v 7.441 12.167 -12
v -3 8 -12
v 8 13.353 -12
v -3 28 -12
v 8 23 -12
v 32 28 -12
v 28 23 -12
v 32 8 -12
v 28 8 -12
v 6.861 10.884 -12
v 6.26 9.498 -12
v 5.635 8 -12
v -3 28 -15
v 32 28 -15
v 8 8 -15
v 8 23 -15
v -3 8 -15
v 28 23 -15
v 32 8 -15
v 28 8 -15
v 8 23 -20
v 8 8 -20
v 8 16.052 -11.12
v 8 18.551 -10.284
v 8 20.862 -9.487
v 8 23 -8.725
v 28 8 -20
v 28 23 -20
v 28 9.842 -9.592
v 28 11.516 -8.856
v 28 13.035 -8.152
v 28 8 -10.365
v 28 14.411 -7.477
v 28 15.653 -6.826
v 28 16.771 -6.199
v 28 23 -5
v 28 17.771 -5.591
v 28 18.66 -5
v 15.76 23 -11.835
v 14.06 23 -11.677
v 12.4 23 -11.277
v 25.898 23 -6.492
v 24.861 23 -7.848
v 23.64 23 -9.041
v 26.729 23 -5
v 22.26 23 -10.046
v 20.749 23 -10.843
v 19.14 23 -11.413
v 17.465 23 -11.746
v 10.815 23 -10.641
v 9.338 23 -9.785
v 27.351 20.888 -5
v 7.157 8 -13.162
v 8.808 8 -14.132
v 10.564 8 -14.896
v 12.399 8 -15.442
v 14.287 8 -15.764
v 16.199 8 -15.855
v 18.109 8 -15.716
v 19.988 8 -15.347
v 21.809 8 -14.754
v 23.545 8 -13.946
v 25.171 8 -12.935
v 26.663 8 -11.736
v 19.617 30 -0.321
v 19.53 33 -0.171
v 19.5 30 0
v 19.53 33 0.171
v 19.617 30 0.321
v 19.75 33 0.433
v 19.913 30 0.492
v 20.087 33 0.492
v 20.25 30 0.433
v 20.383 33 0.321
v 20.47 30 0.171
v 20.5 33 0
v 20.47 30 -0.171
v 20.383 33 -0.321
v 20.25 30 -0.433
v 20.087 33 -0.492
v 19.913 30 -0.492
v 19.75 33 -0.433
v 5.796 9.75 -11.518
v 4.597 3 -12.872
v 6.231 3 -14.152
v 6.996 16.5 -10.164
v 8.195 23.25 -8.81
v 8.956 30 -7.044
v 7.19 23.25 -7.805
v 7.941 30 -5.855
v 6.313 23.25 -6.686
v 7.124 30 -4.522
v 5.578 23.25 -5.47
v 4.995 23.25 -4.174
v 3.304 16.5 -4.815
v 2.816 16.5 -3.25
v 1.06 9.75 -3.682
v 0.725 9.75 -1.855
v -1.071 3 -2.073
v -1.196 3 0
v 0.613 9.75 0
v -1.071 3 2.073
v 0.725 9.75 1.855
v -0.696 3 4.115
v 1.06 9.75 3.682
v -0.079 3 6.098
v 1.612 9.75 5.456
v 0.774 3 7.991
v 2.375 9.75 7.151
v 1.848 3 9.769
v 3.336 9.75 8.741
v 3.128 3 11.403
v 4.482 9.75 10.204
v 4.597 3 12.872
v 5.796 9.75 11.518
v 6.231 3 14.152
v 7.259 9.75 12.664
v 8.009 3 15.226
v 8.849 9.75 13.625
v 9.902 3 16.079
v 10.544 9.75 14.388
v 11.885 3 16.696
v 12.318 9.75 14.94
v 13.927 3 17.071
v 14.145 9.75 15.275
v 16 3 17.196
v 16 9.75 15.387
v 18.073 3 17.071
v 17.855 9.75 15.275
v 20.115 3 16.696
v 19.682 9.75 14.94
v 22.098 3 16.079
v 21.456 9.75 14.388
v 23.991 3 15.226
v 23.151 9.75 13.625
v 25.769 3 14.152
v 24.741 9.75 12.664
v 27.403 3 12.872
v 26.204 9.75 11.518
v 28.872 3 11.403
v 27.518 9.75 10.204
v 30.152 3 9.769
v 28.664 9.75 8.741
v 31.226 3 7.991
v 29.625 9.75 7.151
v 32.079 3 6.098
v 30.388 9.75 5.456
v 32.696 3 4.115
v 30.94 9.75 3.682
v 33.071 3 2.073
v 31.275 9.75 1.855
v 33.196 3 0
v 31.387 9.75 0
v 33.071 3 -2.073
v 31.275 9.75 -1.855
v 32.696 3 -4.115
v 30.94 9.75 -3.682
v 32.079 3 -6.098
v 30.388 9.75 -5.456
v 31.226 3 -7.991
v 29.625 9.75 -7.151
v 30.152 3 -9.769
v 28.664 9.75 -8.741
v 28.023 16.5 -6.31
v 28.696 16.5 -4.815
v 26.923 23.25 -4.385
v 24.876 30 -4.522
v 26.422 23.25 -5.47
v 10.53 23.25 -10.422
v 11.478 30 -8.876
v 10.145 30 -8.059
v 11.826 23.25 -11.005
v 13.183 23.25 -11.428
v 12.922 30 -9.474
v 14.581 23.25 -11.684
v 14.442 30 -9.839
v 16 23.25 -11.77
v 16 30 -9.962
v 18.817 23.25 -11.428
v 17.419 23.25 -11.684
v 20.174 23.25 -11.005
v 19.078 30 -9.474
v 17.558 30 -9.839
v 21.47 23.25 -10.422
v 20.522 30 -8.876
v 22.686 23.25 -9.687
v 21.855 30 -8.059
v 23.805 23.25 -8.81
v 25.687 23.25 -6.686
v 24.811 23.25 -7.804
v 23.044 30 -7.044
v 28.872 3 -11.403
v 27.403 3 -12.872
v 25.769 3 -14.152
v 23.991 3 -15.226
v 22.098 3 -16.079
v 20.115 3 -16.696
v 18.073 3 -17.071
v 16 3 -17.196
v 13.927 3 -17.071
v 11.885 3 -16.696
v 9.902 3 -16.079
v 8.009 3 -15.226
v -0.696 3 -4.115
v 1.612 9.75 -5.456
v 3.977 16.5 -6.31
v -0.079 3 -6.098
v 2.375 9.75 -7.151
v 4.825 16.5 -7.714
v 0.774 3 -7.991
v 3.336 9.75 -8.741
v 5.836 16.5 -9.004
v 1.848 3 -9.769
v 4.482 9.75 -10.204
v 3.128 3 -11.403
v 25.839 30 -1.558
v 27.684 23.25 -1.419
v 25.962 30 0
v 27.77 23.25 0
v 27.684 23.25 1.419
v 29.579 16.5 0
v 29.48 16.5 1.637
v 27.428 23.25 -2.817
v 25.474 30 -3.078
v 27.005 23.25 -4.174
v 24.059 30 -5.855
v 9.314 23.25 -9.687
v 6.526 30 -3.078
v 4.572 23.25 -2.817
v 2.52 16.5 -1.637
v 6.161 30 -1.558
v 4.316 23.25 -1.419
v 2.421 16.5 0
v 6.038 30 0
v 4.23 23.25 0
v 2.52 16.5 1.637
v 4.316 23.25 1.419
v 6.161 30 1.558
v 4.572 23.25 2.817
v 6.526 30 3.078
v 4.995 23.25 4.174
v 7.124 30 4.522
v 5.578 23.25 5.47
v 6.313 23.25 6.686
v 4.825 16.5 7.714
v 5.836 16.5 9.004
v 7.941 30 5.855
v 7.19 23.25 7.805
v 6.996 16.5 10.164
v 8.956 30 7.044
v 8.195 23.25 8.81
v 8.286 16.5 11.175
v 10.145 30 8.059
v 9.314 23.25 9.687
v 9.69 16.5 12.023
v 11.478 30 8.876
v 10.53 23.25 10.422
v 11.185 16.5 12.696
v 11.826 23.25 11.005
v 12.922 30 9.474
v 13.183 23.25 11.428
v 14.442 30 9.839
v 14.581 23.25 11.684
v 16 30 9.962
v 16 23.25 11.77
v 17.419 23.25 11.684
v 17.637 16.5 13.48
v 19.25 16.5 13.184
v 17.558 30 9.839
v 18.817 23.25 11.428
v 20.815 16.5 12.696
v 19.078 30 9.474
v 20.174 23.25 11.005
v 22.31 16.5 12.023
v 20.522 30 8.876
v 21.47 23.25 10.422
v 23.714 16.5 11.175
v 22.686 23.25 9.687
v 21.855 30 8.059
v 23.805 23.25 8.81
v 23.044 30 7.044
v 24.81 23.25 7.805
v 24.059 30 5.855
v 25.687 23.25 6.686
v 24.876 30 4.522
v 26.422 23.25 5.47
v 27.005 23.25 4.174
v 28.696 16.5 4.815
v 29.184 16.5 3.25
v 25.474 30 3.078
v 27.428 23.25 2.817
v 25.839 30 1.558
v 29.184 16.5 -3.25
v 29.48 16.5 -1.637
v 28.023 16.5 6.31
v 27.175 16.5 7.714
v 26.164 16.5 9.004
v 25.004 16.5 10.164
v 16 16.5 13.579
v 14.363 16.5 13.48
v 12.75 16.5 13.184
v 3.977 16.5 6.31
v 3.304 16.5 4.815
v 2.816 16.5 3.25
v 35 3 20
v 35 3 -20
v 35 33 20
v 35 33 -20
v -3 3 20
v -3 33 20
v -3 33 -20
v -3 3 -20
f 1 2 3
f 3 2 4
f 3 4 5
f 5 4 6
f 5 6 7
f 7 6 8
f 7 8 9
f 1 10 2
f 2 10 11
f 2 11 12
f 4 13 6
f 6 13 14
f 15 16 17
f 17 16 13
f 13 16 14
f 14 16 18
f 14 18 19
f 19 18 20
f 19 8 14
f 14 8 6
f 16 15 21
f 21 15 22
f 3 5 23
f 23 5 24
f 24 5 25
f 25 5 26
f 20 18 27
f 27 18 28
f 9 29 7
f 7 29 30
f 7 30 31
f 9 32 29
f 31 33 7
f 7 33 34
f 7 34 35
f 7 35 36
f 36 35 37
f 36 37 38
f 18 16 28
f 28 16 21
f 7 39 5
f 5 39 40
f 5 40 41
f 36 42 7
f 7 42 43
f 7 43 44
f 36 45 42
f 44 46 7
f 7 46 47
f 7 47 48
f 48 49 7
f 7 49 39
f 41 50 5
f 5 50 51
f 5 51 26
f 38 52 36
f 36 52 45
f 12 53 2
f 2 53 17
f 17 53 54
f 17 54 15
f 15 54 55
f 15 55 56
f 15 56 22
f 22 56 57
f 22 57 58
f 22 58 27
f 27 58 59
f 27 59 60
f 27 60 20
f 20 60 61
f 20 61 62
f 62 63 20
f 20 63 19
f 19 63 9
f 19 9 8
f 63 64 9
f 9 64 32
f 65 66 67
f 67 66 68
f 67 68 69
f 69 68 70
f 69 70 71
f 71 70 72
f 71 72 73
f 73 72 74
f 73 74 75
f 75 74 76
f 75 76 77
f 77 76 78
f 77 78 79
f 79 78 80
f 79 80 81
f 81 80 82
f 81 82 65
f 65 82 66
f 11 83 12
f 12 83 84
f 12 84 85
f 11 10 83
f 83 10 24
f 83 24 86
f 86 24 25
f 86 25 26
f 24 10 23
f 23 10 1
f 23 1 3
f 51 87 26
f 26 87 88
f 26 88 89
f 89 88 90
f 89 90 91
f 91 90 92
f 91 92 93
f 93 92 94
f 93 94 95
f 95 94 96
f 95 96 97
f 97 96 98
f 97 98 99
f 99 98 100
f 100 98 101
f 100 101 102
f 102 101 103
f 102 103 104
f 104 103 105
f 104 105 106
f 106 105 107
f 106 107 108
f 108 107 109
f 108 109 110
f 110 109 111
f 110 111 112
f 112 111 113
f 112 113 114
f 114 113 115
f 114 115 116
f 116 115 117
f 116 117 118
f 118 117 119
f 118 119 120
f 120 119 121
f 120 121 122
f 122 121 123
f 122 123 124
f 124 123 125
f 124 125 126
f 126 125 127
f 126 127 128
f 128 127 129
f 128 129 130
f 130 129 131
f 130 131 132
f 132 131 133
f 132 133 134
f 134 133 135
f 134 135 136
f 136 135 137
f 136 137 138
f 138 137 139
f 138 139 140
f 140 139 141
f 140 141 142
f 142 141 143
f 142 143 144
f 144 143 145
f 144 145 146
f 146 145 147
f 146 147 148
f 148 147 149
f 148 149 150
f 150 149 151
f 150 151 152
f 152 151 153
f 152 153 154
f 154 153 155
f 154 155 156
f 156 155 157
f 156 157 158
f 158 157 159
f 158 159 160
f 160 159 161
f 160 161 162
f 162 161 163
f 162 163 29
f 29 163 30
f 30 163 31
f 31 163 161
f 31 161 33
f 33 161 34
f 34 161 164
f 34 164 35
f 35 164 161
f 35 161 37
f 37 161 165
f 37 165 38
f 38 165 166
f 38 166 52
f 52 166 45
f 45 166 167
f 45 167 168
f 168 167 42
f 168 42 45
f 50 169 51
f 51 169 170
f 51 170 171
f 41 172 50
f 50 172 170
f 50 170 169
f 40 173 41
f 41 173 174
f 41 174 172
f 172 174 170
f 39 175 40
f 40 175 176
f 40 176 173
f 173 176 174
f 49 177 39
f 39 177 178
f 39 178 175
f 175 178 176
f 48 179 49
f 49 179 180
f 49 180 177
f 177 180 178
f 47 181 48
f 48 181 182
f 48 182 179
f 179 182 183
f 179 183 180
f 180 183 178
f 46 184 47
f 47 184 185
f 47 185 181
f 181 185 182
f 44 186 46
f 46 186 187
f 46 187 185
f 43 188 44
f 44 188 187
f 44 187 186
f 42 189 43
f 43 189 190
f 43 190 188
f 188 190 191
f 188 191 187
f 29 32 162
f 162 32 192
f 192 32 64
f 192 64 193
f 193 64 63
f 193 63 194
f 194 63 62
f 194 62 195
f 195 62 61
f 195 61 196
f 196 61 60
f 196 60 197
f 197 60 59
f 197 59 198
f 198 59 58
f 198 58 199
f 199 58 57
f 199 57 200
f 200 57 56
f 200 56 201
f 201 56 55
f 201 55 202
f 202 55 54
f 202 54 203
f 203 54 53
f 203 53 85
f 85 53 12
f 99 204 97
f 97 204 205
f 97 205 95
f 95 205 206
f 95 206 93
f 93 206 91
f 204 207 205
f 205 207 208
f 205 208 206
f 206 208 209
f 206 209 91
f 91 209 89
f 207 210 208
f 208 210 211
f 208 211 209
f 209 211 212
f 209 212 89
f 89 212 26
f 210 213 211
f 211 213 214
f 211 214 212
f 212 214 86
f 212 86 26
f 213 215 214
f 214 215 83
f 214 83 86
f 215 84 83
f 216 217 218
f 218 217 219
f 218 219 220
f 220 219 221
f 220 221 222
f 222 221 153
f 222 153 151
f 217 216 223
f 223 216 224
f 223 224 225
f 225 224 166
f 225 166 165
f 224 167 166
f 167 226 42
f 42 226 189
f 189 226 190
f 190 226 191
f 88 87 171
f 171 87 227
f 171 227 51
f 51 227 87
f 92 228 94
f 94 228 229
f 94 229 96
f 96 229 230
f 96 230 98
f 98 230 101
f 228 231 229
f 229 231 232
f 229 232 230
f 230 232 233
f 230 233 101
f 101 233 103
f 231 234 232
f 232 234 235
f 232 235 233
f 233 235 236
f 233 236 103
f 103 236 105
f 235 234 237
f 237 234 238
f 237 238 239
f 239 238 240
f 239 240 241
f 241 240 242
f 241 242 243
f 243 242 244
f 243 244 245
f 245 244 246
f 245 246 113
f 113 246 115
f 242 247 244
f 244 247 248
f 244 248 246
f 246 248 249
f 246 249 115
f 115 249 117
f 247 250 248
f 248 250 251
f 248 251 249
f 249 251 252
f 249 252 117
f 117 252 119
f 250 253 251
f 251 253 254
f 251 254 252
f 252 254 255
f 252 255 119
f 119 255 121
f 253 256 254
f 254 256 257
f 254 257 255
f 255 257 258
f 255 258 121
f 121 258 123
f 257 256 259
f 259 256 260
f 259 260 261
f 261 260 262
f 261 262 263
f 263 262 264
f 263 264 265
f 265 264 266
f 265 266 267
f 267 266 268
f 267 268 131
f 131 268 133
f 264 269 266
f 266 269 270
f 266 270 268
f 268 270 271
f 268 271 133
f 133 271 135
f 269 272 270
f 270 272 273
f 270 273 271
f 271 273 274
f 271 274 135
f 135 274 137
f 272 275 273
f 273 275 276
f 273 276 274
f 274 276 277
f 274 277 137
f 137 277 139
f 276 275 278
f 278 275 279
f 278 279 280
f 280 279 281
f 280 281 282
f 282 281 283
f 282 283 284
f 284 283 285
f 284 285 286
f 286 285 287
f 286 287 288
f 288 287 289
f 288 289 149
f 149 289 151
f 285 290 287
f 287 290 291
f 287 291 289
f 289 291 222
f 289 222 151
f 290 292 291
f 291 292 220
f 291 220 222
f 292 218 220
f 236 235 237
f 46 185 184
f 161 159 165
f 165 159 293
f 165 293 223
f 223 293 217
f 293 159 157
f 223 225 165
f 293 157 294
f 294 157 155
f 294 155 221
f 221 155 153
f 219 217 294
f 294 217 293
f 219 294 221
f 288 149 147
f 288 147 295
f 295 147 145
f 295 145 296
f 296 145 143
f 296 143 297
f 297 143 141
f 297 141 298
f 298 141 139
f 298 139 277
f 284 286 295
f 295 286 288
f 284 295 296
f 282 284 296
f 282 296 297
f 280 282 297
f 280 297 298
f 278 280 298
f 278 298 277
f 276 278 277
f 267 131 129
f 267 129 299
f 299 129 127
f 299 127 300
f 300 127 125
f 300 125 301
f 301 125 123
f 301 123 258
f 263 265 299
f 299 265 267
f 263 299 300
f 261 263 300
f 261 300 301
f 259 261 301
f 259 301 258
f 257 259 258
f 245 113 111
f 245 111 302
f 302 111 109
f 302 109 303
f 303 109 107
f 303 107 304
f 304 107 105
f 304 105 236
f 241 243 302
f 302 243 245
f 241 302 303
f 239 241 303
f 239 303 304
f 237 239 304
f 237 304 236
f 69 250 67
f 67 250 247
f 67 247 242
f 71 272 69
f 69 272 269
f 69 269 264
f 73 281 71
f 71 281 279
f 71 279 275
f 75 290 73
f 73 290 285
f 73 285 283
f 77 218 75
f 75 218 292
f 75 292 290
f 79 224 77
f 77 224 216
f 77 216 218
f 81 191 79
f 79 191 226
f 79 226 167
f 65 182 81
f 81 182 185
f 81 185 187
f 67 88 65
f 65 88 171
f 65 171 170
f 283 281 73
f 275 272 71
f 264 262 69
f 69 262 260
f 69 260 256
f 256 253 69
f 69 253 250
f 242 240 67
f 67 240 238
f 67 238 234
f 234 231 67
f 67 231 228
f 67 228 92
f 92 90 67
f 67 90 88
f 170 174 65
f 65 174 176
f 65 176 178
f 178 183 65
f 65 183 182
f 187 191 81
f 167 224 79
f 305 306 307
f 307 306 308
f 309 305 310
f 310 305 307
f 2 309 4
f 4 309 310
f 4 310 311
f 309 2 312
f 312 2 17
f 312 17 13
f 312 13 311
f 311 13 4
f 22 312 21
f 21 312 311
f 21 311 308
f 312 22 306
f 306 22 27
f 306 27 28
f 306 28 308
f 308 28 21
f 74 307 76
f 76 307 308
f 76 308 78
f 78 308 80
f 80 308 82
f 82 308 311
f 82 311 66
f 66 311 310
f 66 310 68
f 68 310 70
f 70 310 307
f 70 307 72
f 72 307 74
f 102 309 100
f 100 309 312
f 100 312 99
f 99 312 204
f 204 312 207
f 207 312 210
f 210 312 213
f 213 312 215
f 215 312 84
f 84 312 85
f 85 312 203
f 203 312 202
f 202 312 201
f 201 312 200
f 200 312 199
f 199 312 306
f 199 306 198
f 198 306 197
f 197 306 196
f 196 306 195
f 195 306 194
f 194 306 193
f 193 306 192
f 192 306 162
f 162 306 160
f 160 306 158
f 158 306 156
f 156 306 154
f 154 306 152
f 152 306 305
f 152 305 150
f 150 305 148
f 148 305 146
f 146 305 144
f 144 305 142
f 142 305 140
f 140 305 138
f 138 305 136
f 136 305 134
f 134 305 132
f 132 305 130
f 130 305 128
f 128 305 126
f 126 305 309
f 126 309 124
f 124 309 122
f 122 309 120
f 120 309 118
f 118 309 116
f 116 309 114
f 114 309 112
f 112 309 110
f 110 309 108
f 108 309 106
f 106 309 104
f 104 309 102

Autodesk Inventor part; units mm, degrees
ref_plane "YZ Plane" through (0, 0, 0) normal (1, 0, 0) x (0, 1, 0)
ref_plane "XZ Plane" through (0, 0, 0) normal (0, 1, 0) x (-1, 0, 0)
ref_plane "XY Plane" through (0, 0, 0) normal (0, 0, 1) x (1, 0, 0)
ref_plane "Work Plane13" through (0, 3, 0) normal (0, 1, 0) x (1, 0, 0)
sketch "Sketch45" plane through (0, 3, 0) normal (0, 1, 0) x (1, 0, 0)
  line L0 (35, -20) -> (-3, -20)
  line L1 (-3, -20) -> (-3, 20)
  line L2 (-3, 20) -> (35, 20)
  line L3 (35, 20) -> (35, -20)
  point P0 (0, 0)
  dimension "d142" = 38
  dimension "d143" = 40
extrude "Extrusion34" add sketch "Sketch45" along normal blind 30
sketch "Sketch46" plane through (0, 33, 0) normal (0, 1, 0) x (1, 0, 0)
  point P0 (0, 0)
ref_plane "Work Plane11" through (0, 0, 0) normal (0, -1, 0) x (1, 0, 0)
sketch "Sketch47" plane through (0, 0, 0) normal (0, -1, 0) x (1, 0, 0)
  circle A0 centre (16, 0) radius 18
  point P0 (0, 0)
  dimension "d146" = 36
extrude "Extrusion35" cut sketch "Sketch47" against normal blind 30 draft -15
sketch "Sketch48" plane through (0, 33, 0) normal (0, 1, 0) x (1, 0, 0)
  point P0 (0, 0)
sketch "Sketch49" plane through (0, 33, 0) normal (0, 1, 0) x (1, 0, 0)
  circle A0 centre (20, 0) radius 0.5
  point P0 (0, 0)
  dimension "d149" = 1
extrude "Extrusion36" cut sketch "Sketch49" against normal through all
ref_plane "Work Plane7" through (35, 3, -20) normal (0, 0, -1) x (-1, 0, 0)
sketch "Sketch58" plane through (35, 3, -20) normal (0, 0, -1) x (-1, 0, 0)
  line L0 (7, 20) -> (27, 20)
  line L1 (27, 20) -> (27, 5)
  line L2 (27, 5) -> (7, 5)
  line L3 (7, 5) -> (7, 20)
  point P0 (35, -3)
  dimension "d156" = 20
  dimension "d157" = 15
extrude "Extrusion38" cut sketch "Sketch58" against normal blind 15
ref_plane "Work Plane4" through (-3, 3, -20) normal (-1, 0, 0) x (0, 0, 1)
sketch "Sketch59" plane through (-3, 3, -20) normal (-1, 0, 0) x (0, 0, 1)
  line L0 (5, 25) -> (8, 25)
  line L1 (8, 25) -> (8, 5)
  line L2 (8, 5) -> (5, 5)
  line L3 (5, 5) -> (5, 25)
  point P0 (20, -3)
  dimension "d160" = 3
  dimension "d161" = 20
extrude "Extrusion39" cut sketch "Sketch59" against normal blind 35
ref_plane "Work Plane1" through (0, 3, 0) normal (0, 1, 0) x (1, 0, 0)
ref_plane "Work Plane6" through (0, 23, 0) normal (0, 1, 0) x (1, 0, 0)
properties part number "liquid port_v00"
